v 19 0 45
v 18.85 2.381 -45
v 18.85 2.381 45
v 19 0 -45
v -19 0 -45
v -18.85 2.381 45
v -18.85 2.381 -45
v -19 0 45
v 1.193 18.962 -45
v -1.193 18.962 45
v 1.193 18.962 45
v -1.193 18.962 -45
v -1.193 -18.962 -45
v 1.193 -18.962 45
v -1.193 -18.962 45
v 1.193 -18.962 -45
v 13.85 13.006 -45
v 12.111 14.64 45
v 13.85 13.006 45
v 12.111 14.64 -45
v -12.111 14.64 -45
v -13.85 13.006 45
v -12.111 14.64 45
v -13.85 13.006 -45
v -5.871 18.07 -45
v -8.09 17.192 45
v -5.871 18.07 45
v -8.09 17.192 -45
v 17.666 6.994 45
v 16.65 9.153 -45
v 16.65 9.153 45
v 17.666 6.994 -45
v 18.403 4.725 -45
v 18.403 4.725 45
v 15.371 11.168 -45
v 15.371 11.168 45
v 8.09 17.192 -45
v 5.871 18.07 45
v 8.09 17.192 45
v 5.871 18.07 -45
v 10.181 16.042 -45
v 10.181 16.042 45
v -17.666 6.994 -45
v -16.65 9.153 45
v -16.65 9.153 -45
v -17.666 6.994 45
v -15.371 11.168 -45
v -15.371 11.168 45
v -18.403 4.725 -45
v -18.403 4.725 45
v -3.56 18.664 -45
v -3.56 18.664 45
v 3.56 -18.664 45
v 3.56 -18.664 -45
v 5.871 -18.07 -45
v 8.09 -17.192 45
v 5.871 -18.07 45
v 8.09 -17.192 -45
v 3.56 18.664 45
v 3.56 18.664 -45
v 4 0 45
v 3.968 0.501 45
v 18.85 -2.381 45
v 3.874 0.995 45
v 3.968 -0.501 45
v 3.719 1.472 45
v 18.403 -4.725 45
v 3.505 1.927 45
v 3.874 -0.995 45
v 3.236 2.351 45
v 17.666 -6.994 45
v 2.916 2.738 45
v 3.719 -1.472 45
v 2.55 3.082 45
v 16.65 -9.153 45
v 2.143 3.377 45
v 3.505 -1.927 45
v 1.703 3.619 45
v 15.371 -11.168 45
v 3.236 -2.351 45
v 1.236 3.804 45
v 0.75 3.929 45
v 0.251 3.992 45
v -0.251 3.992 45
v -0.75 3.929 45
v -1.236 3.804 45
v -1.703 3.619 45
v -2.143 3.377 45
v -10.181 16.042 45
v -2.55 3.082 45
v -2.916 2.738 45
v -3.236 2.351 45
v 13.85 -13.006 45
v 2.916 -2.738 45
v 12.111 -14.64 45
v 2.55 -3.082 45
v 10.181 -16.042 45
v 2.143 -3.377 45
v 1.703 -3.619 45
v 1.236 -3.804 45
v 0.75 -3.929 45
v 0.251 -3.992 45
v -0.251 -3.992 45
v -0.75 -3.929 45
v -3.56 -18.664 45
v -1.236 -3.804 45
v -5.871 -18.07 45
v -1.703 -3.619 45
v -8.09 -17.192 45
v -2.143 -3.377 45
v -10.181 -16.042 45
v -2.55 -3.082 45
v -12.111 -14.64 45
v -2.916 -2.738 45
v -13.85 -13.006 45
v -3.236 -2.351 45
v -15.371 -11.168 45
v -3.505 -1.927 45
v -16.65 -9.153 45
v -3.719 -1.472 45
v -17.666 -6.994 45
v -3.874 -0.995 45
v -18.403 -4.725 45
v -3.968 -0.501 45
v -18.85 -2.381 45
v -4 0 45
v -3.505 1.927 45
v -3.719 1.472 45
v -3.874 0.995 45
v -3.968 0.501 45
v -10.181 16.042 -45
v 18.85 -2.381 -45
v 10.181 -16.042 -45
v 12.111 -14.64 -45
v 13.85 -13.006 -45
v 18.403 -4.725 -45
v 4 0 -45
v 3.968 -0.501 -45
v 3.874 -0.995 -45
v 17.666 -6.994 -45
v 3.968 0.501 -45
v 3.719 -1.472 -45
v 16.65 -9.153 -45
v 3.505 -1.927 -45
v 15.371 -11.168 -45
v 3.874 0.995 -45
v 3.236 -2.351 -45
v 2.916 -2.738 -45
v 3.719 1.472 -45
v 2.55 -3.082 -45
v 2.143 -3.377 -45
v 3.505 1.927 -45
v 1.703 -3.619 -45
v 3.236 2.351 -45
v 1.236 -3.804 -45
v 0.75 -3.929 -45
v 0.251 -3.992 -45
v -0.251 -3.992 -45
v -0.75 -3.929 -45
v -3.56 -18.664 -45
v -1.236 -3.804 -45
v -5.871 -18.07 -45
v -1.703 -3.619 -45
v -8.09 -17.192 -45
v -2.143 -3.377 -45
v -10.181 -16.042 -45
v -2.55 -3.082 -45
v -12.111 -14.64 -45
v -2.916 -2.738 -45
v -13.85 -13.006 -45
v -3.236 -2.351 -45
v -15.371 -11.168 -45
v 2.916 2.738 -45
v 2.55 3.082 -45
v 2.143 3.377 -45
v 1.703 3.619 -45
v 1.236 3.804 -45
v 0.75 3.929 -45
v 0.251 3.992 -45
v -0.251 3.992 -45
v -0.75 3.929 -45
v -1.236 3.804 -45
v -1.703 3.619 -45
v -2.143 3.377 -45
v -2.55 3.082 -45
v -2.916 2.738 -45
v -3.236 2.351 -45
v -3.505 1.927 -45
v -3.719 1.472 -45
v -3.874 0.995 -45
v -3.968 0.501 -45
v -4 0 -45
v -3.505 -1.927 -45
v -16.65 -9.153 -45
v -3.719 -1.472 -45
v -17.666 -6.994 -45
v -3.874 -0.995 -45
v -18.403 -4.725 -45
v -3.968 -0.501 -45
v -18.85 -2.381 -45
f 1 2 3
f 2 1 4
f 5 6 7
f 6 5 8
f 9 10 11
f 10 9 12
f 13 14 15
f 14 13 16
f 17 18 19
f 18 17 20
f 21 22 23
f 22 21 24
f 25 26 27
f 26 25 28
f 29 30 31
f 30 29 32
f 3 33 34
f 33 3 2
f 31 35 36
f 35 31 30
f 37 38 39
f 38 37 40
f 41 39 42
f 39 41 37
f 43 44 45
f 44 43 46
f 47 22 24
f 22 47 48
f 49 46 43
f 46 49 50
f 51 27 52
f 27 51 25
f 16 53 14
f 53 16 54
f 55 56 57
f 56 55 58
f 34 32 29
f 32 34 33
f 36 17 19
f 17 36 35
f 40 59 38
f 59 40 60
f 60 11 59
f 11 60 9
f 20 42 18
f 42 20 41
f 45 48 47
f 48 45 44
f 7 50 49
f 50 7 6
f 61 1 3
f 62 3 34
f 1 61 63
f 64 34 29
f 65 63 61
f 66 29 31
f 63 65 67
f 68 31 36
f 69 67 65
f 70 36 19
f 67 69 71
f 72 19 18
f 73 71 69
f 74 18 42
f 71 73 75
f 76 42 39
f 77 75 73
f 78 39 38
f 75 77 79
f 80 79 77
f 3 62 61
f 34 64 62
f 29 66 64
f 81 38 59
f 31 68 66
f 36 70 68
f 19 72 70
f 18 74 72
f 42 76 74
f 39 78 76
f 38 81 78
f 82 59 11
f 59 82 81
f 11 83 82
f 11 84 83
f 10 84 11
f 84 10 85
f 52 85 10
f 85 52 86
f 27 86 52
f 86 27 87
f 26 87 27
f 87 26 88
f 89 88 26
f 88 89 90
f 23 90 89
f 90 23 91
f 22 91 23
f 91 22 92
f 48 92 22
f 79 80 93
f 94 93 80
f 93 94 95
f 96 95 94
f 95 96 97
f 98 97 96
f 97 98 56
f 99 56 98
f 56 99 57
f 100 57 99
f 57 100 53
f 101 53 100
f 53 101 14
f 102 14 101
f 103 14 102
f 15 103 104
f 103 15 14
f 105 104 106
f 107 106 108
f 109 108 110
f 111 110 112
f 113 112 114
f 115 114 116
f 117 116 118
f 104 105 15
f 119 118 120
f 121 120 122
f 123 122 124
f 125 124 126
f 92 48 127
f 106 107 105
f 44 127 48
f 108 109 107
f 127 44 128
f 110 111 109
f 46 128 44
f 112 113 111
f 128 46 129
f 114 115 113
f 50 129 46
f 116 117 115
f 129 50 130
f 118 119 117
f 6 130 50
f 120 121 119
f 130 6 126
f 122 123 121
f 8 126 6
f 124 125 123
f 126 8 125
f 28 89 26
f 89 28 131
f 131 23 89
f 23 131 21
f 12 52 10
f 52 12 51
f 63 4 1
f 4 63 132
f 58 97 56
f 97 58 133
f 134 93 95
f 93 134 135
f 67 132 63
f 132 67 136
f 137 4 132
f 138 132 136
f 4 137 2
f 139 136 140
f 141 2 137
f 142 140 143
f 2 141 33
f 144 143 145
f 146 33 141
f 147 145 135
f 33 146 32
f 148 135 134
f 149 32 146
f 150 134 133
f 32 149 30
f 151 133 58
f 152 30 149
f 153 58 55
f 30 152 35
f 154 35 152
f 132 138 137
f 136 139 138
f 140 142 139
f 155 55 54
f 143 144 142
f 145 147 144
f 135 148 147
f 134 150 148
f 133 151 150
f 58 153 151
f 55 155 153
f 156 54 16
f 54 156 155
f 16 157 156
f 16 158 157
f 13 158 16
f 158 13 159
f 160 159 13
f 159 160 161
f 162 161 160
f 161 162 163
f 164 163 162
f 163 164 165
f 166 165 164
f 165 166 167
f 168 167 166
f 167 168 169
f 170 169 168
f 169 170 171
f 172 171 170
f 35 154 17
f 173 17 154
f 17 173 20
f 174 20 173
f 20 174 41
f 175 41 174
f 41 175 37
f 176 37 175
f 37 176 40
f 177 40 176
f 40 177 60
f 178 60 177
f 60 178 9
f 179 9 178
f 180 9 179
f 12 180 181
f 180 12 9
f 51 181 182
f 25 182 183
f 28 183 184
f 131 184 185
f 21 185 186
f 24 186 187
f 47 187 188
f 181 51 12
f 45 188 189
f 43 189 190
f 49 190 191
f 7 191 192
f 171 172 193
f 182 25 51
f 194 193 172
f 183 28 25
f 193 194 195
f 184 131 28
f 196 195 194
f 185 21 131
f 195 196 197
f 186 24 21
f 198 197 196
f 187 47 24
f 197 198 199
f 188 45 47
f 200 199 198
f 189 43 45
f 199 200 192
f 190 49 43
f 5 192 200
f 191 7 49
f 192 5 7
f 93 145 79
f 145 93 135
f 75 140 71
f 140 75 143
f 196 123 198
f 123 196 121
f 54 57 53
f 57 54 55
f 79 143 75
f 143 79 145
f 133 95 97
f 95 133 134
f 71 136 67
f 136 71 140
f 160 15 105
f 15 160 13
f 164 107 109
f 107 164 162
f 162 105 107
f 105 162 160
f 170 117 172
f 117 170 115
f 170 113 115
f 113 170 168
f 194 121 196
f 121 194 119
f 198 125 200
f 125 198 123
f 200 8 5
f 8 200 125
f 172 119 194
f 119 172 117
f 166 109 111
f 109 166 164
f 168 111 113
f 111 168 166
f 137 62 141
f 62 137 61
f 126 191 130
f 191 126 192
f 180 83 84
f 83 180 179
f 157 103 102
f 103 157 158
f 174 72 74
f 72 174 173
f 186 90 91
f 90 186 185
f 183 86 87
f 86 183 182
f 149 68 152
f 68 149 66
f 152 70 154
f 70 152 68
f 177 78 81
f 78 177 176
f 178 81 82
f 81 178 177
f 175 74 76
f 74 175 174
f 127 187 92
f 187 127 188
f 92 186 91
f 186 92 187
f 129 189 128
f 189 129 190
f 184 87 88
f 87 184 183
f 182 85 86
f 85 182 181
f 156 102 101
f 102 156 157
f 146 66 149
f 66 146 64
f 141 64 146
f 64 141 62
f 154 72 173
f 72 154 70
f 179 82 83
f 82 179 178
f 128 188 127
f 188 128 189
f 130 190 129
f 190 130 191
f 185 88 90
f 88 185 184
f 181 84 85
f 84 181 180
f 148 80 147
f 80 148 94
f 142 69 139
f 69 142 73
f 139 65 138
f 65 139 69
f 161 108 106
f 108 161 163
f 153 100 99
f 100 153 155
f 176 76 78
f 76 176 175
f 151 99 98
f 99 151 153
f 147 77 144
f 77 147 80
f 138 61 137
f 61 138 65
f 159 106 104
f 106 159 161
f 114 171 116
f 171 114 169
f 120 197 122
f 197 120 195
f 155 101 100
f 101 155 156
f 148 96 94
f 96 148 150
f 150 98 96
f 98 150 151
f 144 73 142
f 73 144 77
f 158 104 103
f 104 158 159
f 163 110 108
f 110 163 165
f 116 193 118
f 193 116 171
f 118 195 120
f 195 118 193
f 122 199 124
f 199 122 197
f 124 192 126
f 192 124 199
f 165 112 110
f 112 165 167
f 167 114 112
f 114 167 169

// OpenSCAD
$fn = 50;


difference() {
	union() {
		translate(v = [0, 0, -45.0000000000]) {
			cylinder(h = 90, r = 19.0000000000);
		}
	}
	union() {
		translate(v = [0, 0, -100.0000000000]) {
			cylinder(h = 200, r = 4.0000000000);
		}
	}
}
